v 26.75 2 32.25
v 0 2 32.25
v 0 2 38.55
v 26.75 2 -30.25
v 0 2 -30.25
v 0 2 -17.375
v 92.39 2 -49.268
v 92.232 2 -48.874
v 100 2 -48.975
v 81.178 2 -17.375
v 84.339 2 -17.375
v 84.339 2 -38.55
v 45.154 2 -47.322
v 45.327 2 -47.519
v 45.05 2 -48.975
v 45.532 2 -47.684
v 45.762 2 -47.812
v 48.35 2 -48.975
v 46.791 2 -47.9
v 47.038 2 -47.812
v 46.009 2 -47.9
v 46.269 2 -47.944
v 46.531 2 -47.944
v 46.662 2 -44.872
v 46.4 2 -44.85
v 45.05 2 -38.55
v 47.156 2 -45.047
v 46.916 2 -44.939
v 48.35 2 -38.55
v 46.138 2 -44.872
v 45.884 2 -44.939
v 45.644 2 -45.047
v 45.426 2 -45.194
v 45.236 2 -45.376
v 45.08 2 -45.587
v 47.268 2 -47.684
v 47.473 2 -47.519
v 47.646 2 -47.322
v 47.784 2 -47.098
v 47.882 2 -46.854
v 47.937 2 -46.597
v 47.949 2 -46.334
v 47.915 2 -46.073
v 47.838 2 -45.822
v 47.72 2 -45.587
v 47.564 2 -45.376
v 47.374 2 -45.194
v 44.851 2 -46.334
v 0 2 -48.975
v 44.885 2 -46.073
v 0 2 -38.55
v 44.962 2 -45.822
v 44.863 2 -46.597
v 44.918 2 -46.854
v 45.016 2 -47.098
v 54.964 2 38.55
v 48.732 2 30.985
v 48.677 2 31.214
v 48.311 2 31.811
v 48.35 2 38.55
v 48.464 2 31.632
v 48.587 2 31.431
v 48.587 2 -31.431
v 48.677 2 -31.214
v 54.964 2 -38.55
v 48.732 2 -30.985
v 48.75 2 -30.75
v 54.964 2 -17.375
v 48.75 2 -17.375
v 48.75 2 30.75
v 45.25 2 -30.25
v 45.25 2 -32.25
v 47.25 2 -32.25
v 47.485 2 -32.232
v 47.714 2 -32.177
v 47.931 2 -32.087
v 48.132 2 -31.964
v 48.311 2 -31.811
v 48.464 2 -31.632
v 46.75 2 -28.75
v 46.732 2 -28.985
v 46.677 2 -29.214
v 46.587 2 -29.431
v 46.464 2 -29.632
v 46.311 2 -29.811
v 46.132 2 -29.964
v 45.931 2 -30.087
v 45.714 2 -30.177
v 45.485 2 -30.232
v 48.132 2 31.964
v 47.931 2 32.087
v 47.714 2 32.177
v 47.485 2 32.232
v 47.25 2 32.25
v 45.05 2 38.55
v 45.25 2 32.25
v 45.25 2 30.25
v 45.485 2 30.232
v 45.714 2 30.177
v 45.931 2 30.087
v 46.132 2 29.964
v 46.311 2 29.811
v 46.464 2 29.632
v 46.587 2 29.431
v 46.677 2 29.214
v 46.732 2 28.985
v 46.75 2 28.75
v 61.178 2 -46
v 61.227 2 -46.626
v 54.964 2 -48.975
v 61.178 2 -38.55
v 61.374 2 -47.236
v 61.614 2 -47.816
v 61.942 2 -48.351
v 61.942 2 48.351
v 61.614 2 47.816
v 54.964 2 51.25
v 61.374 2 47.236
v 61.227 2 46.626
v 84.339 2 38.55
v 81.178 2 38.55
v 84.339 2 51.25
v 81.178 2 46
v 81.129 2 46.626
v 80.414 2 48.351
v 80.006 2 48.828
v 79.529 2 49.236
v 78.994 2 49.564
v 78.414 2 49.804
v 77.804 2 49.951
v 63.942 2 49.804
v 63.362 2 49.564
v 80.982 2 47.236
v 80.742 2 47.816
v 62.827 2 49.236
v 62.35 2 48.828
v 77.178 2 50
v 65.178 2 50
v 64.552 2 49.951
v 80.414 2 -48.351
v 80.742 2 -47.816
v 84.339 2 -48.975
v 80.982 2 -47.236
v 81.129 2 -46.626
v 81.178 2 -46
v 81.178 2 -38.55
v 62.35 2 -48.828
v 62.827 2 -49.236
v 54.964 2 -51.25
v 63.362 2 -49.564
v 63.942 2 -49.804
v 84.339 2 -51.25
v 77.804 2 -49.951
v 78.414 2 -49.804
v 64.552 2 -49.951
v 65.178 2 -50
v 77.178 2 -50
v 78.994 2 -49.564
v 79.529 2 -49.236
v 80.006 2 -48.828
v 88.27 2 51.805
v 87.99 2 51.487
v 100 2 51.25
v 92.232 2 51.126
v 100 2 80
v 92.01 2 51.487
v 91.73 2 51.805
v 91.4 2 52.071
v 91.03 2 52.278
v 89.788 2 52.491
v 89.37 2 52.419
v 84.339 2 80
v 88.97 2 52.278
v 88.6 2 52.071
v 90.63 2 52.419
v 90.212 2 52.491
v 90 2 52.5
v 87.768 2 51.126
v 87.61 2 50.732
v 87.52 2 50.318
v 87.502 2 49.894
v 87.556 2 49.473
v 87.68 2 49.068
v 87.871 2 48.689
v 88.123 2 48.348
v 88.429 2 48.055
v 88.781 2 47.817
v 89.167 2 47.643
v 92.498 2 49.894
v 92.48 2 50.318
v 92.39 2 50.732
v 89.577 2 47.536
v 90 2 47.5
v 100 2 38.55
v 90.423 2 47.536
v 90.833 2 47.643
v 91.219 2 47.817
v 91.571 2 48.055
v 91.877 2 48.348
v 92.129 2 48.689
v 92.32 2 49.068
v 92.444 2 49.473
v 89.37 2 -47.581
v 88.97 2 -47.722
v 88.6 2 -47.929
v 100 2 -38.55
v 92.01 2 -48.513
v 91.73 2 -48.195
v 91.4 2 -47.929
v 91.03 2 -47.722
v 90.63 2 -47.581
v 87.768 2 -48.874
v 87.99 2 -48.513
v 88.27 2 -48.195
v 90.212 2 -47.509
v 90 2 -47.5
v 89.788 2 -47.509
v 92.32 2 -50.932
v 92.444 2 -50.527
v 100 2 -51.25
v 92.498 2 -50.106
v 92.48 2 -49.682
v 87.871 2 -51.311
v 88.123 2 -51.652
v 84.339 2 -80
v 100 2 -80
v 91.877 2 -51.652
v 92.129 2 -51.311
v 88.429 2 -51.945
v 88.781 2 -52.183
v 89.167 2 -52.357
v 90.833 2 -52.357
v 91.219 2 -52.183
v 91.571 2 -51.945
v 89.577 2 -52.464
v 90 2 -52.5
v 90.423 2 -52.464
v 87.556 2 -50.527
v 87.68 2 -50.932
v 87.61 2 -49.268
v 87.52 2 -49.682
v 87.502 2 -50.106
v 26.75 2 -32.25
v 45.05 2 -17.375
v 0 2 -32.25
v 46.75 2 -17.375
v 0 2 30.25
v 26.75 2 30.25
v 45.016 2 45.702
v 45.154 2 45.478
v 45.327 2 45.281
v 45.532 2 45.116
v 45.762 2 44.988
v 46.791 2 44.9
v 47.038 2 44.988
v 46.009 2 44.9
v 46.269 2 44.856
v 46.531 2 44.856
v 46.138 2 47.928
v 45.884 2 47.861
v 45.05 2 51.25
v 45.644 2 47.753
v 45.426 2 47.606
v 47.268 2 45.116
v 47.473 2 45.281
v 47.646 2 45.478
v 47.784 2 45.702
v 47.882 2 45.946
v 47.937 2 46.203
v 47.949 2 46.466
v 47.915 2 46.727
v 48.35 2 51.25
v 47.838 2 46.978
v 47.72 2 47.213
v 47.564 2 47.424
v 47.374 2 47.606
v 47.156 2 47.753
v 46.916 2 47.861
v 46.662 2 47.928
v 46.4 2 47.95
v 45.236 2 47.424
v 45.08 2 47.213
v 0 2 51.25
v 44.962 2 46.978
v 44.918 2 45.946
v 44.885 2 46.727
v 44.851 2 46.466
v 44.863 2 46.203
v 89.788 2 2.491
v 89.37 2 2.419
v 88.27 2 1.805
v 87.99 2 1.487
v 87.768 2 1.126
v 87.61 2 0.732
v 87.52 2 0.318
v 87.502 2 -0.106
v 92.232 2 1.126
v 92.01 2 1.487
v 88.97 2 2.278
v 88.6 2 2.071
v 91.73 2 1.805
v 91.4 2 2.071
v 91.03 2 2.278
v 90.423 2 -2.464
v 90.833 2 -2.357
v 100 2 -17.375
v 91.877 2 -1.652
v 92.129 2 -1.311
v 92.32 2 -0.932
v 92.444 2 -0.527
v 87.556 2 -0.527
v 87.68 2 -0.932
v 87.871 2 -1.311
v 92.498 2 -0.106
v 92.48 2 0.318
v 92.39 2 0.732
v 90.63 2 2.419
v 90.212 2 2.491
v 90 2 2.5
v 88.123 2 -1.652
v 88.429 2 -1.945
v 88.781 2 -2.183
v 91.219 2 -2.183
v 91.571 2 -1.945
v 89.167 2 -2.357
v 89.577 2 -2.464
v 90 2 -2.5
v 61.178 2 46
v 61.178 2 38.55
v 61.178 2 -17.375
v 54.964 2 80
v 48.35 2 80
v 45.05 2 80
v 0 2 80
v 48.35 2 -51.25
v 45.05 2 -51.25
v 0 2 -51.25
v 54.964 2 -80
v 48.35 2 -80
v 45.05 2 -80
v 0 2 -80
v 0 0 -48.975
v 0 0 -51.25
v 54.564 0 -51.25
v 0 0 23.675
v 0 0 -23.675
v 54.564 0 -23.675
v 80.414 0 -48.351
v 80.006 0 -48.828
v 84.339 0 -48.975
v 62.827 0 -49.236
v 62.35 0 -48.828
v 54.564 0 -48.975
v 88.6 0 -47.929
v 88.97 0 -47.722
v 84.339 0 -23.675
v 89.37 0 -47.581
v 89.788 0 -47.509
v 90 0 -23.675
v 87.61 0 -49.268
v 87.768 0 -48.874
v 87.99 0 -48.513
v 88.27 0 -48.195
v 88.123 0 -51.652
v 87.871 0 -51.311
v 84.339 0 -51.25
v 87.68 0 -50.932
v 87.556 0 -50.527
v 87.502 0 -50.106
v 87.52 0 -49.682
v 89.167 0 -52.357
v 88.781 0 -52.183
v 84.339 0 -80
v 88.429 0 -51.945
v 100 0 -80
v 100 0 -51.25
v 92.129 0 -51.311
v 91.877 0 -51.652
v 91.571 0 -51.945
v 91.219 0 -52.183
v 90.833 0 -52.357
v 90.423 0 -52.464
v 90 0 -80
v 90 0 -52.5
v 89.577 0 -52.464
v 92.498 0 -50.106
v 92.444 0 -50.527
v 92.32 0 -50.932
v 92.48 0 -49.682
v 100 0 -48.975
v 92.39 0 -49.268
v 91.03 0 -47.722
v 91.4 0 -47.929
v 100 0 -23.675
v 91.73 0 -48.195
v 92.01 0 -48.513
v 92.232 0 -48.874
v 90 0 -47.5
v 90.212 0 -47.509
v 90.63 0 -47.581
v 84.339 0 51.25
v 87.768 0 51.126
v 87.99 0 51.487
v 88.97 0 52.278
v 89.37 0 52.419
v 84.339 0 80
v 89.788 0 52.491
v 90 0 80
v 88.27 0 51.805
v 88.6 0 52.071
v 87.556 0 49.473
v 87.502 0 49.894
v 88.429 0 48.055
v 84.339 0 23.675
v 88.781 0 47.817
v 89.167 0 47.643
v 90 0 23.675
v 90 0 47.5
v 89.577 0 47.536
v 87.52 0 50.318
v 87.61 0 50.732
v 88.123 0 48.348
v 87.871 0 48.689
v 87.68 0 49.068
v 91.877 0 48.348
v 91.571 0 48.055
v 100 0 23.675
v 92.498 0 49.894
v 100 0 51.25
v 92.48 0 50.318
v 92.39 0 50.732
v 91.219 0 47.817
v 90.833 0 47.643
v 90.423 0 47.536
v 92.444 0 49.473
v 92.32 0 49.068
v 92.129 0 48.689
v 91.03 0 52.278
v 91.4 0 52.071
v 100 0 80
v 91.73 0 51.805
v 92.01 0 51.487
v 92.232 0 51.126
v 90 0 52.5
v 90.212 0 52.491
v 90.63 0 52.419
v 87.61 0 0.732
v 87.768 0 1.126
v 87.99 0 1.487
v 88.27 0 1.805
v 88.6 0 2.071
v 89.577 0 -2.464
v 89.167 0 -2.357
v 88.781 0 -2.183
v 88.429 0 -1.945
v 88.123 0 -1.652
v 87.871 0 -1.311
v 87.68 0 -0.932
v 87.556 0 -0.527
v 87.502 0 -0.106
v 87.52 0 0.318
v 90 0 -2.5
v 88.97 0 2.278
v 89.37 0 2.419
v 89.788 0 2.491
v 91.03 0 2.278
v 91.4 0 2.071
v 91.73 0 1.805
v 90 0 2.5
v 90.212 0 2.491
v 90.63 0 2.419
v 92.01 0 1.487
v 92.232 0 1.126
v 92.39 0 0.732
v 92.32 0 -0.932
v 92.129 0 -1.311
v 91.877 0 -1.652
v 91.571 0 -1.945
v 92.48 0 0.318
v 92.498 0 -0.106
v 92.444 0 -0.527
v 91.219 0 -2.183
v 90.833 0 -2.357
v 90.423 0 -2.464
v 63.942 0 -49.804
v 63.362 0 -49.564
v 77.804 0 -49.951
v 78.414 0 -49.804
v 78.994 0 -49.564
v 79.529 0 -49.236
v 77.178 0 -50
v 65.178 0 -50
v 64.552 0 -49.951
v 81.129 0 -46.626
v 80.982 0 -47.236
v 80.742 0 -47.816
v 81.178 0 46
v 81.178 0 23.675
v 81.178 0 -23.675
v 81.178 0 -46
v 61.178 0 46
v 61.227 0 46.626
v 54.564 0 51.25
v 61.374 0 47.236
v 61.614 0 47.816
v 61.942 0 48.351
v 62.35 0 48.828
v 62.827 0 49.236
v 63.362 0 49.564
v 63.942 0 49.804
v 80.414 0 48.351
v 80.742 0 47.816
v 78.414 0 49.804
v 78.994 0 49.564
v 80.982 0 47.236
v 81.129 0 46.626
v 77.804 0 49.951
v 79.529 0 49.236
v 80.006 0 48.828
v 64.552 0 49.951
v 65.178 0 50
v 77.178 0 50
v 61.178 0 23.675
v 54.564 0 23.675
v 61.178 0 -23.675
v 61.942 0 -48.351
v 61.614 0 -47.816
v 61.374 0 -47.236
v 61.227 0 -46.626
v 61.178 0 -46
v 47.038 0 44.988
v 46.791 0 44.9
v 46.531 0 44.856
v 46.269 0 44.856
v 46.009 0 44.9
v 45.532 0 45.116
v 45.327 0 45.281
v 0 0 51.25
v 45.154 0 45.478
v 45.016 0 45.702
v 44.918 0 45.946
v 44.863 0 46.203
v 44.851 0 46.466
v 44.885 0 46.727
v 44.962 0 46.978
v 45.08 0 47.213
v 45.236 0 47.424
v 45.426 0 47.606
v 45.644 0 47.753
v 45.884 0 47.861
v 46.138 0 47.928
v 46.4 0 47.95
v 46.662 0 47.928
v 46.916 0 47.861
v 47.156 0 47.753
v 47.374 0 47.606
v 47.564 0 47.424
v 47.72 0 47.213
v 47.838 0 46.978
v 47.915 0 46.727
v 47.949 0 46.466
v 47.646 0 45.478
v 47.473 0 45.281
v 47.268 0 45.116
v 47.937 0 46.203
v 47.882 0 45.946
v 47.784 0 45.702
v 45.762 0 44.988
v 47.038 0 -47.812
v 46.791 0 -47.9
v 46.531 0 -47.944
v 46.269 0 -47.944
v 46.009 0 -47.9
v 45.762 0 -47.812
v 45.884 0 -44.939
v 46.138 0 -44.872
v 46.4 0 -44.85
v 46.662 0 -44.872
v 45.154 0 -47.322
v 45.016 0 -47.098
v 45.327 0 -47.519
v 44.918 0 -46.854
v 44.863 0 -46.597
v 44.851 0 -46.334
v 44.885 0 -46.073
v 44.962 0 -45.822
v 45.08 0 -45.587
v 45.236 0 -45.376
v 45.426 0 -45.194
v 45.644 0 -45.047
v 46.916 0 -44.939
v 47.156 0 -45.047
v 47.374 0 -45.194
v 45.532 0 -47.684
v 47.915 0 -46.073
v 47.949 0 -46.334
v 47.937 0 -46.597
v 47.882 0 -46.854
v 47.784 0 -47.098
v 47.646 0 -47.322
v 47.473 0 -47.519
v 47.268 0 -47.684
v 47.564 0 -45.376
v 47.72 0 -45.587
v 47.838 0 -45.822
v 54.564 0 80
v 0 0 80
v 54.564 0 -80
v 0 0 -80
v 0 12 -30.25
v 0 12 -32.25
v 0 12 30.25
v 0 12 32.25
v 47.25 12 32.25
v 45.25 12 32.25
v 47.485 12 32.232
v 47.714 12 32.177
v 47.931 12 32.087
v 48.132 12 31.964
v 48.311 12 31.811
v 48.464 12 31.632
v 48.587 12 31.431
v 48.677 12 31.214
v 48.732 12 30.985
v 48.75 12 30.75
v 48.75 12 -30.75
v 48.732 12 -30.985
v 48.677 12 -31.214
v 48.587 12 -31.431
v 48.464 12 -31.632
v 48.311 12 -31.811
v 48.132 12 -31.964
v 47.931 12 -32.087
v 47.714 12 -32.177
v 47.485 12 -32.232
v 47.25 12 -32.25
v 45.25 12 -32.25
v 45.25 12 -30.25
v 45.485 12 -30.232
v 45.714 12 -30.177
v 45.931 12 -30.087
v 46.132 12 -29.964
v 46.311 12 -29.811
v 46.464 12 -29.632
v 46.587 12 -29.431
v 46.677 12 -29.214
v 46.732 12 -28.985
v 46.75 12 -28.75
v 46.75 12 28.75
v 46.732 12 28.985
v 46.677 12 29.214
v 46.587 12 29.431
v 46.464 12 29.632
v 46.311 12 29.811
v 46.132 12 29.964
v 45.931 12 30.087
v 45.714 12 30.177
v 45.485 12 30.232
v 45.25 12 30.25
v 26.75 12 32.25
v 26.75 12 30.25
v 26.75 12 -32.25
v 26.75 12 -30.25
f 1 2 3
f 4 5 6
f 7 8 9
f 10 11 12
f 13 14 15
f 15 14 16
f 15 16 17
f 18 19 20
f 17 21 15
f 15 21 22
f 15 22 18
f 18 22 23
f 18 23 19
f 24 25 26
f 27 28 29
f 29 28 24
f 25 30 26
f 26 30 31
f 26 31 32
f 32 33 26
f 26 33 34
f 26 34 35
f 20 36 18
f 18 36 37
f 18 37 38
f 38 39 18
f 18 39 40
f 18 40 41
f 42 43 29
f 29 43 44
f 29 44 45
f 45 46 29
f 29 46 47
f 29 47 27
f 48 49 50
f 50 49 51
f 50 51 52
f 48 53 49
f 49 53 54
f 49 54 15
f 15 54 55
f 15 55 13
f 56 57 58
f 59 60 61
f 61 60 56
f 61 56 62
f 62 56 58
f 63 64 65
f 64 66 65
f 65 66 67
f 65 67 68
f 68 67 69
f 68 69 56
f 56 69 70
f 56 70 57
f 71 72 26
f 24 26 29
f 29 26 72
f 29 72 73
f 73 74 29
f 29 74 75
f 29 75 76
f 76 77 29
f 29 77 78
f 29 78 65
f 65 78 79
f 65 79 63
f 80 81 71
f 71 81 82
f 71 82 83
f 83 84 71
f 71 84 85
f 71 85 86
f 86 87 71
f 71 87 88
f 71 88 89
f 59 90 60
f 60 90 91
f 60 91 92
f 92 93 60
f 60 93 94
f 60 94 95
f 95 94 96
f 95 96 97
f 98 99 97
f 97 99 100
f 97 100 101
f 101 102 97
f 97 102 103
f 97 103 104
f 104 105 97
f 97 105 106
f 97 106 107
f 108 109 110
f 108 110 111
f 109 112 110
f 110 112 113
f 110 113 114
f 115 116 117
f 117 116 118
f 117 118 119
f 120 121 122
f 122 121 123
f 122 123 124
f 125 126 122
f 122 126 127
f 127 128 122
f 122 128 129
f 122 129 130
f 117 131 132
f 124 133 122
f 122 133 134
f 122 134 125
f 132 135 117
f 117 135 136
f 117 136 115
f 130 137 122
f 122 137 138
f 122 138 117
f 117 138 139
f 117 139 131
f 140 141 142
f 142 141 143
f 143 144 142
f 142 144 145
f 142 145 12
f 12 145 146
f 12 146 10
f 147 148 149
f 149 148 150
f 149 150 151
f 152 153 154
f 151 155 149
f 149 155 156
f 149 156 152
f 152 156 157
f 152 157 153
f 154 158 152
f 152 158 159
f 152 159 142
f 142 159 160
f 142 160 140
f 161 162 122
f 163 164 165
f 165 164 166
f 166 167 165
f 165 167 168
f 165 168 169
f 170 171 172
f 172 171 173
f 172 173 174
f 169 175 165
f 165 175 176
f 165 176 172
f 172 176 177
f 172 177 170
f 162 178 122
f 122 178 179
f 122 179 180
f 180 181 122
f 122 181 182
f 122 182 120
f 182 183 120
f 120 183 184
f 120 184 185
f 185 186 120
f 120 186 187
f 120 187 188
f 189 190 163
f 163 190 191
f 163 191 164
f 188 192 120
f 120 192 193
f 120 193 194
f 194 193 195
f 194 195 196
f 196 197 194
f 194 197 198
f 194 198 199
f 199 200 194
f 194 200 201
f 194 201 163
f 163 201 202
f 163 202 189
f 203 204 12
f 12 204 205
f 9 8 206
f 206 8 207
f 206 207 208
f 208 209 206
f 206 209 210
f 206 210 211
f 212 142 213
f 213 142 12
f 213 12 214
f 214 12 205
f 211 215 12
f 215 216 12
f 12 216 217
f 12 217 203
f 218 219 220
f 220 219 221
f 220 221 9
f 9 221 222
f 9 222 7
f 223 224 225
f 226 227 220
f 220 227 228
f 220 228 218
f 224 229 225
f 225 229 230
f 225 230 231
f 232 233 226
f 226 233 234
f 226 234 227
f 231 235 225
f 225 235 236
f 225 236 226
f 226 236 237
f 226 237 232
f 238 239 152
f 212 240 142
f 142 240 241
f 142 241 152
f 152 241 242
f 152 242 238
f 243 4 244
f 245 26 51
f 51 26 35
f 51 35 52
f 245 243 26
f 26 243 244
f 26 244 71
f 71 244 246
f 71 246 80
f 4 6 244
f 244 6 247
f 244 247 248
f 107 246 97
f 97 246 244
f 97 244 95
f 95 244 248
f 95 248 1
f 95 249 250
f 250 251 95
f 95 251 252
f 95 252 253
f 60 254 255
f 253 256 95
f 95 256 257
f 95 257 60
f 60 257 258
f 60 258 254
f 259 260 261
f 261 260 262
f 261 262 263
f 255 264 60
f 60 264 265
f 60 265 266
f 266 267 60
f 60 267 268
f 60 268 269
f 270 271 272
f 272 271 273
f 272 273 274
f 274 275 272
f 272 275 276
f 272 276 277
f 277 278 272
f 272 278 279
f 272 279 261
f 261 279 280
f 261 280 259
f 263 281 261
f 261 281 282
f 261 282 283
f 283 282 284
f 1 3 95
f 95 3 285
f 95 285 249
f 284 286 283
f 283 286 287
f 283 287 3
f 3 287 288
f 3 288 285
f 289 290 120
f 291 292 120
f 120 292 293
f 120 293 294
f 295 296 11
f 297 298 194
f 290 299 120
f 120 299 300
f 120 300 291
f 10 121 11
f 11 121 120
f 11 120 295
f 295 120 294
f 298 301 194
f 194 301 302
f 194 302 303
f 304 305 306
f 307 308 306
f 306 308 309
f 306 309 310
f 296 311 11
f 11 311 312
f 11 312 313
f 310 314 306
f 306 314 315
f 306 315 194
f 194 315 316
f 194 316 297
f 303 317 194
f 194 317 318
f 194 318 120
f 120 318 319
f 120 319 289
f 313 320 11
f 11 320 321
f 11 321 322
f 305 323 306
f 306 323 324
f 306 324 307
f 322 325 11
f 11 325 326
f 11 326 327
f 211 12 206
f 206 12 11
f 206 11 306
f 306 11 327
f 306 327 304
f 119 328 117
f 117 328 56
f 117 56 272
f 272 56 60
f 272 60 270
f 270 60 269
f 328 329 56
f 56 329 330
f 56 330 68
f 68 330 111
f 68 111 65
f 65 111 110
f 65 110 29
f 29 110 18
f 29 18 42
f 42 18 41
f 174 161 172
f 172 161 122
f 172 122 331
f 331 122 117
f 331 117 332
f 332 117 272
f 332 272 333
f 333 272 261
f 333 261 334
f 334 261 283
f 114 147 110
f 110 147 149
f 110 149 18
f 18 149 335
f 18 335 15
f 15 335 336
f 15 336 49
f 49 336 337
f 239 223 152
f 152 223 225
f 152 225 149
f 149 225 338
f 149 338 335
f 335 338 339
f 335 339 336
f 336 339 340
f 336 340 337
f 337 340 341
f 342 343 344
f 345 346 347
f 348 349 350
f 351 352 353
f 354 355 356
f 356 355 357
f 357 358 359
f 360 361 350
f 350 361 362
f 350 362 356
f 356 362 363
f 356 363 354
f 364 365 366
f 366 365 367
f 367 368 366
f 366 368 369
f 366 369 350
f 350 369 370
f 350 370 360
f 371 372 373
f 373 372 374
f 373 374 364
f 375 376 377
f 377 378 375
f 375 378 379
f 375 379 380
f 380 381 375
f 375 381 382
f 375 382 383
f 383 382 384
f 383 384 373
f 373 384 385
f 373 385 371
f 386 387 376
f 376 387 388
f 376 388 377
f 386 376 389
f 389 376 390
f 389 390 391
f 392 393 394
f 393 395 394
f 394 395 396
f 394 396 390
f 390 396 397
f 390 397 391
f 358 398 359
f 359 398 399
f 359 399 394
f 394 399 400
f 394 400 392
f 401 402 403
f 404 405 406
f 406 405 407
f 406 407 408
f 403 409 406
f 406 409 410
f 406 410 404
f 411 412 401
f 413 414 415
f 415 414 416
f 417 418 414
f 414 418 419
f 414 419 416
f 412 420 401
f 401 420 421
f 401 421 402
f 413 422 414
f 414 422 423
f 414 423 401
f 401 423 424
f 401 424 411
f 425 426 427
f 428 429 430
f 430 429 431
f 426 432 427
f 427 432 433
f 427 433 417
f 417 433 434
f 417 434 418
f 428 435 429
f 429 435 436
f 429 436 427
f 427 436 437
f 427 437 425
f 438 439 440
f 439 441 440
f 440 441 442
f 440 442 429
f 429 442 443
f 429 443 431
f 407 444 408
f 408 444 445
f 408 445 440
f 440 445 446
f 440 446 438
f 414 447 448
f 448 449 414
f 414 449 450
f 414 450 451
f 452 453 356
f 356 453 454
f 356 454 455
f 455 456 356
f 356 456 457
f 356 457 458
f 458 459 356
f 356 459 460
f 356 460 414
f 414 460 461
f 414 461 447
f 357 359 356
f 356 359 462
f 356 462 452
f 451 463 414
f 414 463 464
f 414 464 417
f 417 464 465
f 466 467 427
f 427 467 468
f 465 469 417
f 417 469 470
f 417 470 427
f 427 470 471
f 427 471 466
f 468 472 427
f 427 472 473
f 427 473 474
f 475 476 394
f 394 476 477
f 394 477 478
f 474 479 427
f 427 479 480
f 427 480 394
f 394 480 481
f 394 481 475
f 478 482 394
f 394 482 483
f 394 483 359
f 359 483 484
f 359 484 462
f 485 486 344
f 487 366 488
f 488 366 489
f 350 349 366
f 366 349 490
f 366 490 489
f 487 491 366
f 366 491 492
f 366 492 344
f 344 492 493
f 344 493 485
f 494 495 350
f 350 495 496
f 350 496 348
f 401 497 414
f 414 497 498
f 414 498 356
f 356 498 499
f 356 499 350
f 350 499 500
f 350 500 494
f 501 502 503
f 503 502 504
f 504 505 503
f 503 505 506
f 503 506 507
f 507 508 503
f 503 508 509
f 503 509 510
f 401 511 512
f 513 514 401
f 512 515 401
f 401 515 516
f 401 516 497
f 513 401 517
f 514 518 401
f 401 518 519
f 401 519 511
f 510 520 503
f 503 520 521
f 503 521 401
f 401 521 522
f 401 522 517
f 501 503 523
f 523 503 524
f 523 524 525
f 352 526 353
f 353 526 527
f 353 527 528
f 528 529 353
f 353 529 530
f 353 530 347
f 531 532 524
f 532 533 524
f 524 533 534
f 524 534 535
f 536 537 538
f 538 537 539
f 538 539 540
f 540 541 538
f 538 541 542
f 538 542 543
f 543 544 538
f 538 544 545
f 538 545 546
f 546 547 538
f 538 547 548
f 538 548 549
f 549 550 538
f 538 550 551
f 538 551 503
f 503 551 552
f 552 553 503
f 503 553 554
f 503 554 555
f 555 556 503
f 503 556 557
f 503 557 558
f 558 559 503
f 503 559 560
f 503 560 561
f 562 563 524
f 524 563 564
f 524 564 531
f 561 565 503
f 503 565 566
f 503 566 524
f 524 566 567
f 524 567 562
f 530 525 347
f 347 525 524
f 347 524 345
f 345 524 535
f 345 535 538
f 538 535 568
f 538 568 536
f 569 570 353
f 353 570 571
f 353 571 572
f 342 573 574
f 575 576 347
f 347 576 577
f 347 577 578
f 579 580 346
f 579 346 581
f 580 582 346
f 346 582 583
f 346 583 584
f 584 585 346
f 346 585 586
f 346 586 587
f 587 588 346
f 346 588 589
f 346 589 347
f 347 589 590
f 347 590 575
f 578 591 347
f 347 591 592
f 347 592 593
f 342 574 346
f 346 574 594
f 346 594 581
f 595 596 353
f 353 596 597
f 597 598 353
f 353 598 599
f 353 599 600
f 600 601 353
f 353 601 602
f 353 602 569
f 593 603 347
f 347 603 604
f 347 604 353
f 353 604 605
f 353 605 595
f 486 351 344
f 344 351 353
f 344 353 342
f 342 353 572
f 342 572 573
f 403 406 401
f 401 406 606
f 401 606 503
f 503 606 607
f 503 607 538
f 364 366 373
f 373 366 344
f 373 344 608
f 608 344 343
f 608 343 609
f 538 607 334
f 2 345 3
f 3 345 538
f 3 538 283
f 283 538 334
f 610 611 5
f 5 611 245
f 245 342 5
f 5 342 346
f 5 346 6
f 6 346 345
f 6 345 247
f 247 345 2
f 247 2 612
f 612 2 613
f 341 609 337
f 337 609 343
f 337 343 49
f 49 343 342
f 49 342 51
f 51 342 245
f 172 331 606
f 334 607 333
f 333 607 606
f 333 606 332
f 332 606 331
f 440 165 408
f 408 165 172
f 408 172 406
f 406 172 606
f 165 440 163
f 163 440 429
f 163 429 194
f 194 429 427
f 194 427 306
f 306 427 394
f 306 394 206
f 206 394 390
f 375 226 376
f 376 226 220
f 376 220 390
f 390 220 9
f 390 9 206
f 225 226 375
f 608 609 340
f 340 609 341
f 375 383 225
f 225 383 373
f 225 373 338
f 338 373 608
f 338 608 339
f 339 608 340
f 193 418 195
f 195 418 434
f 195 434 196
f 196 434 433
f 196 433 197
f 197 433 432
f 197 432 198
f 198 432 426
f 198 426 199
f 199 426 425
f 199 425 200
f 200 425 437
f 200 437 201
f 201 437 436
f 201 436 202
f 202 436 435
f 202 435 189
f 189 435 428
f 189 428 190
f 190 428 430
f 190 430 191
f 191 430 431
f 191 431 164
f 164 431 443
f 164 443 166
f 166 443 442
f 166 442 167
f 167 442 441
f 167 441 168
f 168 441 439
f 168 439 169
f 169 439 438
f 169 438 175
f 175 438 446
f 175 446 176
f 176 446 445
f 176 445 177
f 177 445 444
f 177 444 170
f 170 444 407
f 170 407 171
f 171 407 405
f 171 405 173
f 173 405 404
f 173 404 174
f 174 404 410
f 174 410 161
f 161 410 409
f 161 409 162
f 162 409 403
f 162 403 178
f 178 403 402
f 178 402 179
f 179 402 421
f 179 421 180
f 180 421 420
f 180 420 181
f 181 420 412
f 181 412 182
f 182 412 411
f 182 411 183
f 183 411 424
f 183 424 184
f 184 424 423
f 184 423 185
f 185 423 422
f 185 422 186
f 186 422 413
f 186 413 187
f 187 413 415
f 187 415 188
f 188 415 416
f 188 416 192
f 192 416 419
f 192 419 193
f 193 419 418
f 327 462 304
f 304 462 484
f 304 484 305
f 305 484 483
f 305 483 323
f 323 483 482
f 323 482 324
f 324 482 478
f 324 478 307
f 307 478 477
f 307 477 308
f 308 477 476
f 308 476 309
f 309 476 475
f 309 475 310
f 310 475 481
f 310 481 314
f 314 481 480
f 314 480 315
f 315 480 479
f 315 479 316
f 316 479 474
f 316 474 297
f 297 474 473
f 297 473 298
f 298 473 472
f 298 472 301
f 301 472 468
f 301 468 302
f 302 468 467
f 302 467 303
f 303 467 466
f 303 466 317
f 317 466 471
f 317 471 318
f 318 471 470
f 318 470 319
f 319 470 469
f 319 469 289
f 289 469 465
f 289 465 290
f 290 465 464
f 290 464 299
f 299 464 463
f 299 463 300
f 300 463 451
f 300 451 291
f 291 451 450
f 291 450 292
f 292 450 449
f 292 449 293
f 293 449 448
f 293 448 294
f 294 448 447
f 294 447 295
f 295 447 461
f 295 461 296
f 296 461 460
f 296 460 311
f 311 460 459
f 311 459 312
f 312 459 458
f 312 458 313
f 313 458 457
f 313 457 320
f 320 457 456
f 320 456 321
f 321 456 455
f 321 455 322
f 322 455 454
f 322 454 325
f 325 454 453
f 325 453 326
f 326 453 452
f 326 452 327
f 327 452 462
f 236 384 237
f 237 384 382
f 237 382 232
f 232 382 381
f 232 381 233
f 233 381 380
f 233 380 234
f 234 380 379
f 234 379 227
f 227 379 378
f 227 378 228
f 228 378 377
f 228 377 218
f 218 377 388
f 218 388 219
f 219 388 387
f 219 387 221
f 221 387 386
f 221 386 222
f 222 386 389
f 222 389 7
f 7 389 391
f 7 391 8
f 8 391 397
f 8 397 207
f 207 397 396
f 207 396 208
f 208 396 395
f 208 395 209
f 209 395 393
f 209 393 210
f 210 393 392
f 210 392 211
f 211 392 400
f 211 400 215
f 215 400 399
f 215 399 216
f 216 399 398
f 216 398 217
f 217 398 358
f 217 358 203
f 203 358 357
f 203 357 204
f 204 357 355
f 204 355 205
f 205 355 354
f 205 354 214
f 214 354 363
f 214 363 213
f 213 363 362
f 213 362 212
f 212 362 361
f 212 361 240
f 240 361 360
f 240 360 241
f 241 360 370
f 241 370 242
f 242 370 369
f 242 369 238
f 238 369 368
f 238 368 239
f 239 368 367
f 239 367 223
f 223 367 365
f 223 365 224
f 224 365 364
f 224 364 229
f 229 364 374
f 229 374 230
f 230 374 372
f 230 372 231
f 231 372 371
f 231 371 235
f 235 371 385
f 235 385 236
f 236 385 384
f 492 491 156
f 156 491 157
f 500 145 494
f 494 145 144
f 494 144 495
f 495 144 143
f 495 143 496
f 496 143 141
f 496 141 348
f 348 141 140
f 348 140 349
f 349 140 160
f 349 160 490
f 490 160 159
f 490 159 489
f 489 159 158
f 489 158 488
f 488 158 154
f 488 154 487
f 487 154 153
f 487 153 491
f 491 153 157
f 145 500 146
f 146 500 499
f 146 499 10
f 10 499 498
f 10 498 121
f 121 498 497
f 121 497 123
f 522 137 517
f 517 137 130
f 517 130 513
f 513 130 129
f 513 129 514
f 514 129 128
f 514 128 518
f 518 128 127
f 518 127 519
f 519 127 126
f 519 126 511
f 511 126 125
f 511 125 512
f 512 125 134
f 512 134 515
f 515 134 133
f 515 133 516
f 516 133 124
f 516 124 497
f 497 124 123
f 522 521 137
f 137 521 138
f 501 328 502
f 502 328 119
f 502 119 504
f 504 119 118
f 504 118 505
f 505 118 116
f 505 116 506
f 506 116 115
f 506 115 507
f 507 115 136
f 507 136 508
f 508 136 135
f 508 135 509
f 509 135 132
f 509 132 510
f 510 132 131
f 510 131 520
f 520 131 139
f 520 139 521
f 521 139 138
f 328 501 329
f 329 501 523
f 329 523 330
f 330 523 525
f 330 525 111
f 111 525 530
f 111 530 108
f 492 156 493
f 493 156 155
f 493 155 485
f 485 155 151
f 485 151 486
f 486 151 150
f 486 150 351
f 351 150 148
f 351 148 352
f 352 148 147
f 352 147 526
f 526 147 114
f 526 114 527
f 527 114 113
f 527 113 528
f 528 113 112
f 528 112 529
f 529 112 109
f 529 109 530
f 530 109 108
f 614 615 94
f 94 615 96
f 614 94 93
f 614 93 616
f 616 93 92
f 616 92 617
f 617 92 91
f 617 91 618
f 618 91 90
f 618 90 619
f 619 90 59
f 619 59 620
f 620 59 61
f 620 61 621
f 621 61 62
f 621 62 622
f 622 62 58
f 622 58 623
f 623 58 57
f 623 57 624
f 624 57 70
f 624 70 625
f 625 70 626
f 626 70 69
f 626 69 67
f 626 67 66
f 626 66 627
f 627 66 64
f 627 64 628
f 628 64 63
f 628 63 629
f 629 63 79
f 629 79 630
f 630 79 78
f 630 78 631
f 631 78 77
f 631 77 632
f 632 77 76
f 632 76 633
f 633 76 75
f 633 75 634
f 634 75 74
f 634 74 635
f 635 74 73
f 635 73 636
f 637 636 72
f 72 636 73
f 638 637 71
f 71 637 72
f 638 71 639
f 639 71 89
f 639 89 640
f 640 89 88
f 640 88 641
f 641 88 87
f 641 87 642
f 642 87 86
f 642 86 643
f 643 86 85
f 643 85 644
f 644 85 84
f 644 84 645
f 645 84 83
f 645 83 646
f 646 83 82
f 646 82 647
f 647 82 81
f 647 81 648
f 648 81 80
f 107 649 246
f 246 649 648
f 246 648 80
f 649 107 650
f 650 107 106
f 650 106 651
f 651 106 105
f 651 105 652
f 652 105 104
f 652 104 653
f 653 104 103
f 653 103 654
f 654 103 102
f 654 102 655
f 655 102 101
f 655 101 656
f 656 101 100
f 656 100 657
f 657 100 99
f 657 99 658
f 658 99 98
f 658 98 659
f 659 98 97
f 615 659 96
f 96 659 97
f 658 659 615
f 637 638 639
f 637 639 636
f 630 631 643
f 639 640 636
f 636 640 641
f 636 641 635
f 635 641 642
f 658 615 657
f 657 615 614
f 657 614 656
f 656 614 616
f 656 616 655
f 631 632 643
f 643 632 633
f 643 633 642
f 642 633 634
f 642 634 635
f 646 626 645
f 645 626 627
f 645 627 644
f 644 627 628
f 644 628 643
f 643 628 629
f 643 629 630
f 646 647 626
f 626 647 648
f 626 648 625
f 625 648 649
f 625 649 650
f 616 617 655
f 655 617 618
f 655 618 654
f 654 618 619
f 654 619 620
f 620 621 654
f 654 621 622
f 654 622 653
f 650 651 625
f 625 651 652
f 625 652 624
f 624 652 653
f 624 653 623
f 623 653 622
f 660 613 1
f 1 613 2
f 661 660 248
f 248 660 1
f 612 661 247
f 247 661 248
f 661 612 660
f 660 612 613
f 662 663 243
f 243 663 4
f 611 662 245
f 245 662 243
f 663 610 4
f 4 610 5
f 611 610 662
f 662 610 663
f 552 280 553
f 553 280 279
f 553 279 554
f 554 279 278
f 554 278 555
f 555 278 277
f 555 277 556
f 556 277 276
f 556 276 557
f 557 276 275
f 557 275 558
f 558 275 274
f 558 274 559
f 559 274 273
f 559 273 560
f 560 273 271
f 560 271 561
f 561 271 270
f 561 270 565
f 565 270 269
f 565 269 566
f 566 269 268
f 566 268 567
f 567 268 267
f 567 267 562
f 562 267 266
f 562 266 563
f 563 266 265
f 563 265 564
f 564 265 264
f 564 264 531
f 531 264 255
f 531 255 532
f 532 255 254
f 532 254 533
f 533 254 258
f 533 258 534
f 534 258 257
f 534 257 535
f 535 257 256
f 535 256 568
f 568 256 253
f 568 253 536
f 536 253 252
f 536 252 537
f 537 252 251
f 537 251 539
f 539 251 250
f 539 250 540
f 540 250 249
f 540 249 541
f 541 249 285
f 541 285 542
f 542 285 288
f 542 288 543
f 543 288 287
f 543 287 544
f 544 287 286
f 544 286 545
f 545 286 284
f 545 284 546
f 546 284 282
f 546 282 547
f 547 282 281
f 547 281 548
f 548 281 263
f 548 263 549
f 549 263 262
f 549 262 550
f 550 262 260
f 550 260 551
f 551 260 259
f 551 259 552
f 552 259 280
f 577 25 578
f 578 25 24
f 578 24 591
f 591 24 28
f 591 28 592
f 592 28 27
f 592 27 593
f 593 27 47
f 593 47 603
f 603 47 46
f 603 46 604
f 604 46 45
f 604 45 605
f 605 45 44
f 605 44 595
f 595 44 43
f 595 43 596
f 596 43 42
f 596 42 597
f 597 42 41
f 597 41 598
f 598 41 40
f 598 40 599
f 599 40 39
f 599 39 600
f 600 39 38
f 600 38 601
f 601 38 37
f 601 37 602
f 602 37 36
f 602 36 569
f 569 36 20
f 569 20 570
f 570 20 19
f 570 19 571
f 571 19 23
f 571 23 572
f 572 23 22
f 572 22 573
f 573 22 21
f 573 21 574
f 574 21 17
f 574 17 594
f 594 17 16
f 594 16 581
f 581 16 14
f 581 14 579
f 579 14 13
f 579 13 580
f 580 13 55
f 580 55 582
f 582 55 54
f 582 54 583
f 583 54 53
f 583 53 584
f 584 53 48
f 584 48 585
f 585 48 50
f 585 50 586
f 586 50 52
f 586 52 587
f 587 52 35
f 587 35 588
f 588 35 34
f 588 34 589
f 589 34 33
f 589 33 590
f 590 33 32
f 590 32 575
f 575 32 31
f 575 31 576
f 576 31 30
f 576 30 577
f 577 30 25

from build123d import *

# Parameters (mm, degrees)
SKETCH_1_R          = 2.5
EXTRUDE_4_DEPTH     = 2
SKETCH_4_R          = 1.5
CUT_EXTRUDE_2_DEPTH = 2
SKETCH_6_W          = 26.75
SKETCH_6_H          = 2
EXTRUDE_5_DEPTH     = 10
SKETCH_7_R          = 1.5
SKETCH_7_R_2        = 1.663234229
EXTRUDE_6_DEPTH     = 2
SKETCH_8_R          = 1.55
CUT_EXTRUDE_3_DEPTH = 2


with BuildPart() as part:
    # 草图1 → 凸台-拉伸4 (new body)
    with BuildSketch(Plane(origin=(0, 0, 0), x_dir=(1, 0, 0), z_dir=(0, 1, 0))):
        Polygon((0, 0), (0, -80), (70, -80), (100, -80), (100, 80), (70, 80), (0, 80), align=None)
        with Locations(Location((90, -50, 0), (0, 0, 270))):
            Circle(SKETCH_1_R, mode=Mode.SUBTRACT)
        with Locations(Location((90, 0, 0), (0, 0, 270))):
            Circle(SKETCH_1_R, mode=Mode.SUBTRACT)
        with Locations(Location((90, 50, 0), (0, 0, 270))):
            Circle(SKETCH_1_R, mode=Mode.SUBTRACT)
    extrude(amount=EXTRUDE_4_DEPTH)

    # 草图4 → 切除-拉伸2 (cut)
    with BuildSketch(Plane(origin=(0, 2, 0), x_dir=(1, 0, 0), z_dir=(0, 1, 0))):
        with BuildLine():
            Line((65.178018522, 50), (77.178018522, 50))
            ThreePointArc((77.178018522, 50), (80.006445646, 48.828427125), (81.178018522, 46))
            Line((81.178018522, 46), (81.178018522, -46))
            ThreePointArc((81.178018522, -46), (80.006445646, -48.828427125), (77.178018522, -50))
            Line((77.178018522, -50), (65.178018522, -50))
            ThreePointArc((65.178018522, -50), (62.349591397, -48.828427125), (61.178018522, -46))
            Line((61.178018522, -46), (61.178018522, 46))
            ThreePointArc((61.178018522, 46), (62.349591397, 48.828427125), (65.178018522, 50))
        make_face()
        with Locations(Location((47.4, -47.4, 0), (0, 0, 270))):
            Circle(SKETCH_4_R)
        with Locations(Location((47.4, 47.4, 0), (0, 0, 270))):
            Circle(SKETCH_4_R)
    extrude(amount=-CUT_EXTRUDE_2_DEPTH, mode=Mode.SUBTRACT)

    # 草图6 → 凸台-拉伸5 (add)
    with BuildSketch(Plane(origin=(0, 2, 0), x_dir=(1, 0, 0), z_dir=(0, 1, 0))):
        with Locations((13.375, -31.25)):
            Rectangle(SKETCH_6_W, SKETCH_6_H)
        with BuildLine():
            Line((47.25, 32.25), (46.75, 32.25))
            Line((46.75, 32.25), (46.75, 28.75))
            Line((46.75, 28.75), (46.75, -28.75))
            Line((46.75, -28.75), (46.75, -32.25))
            Line((46.75, -32.25), (47.25, -32.25))
            ThreePointArc((47.25, -32.25), (48.310660172, -31.810660172), (48.75, -30.75))
            Line((48.75, -30.75), (48.75, 30.75))
            ThreePointArc((48.75, 30.75), (48.310660172, 31.810660172), (47.25, 32.25))
        make_face()
        with BuildLine():
            Line((46.75, -32.25), (46.75, -28.75))
            ThreePointArc((46.75, -28.75), (46.310660172, -29.810660172), (45.25, -30.25))
            Line((45.25, -30.25), (45.25, -32.25))
            Line((45.25, -32.25), (46.75, -32.25))
        make_face()
        with BuildLine():
            Line((46.75, 32.25), (45.25, 32.25))
            Line((45.25, 32.25), (45.25, 30.25))
            ThreePointArc((45.25, 30.25), (46.310660172, 29.810660172), (46.75, 28.75))
            Line((46.75, 28.75), (46.75, 32.25))
        make_face()
        with Locations((13.375, 31.25)):
            Rectangle(SKETCH_6_W, SKETCH_6_H)
    extrude(amount=EXTRUDE_5_DEPTH)

    # 草图7 → 凸台-拉伸6 (add)
    with BuildSketch(Plane(origin=(0, 2, 0), x_dir=(1, 0, 0), z_dir=(0, 1, 0))):
        with Locations((47.4, 47.4)):
            Circle(SKETCH_7_R)
        with Locations((47.4, -47.4)):
            Circle(SKETCH_7_R_2)
    extrude(amount=-EXTRUDE_6_DEPTH)

    # 草图8 → 切除-拉伸3 (cut)
    with BuildSketch(Plane(origin=(0, 2, 0), x_dir=(1, 0, 0), z_dir=(0, 1, 0))):
        with BuildLine():
            ThreePointArc((47.95, 46.4), (47.496015511, 47.496015511), (46.4, 47.95))
            Line((46.4, 47.95), (46.4, 46.4))
            Line((46.4, 46.4), (47.95, 46.4))
        make_face()
        with BuildLine():
            Line((46.4, 46.4), (46.4, 47.95))
            ThreePointArc((46.4, 47.95), (45.303984489, 45.303984489), (47.95, 46.4))
            Line((47.95, 46.4), (46.4, 46.4))
        make_face()
        with Locations(Location((46.4, -46.4, 0), (0, 0, 270))):
            Circle(SKETCH_8_R)
    extrude(amount=-CUT_EXTRUDE_3_DEPTH, mode=Mode.SUBTRACT)


solid = part.part
